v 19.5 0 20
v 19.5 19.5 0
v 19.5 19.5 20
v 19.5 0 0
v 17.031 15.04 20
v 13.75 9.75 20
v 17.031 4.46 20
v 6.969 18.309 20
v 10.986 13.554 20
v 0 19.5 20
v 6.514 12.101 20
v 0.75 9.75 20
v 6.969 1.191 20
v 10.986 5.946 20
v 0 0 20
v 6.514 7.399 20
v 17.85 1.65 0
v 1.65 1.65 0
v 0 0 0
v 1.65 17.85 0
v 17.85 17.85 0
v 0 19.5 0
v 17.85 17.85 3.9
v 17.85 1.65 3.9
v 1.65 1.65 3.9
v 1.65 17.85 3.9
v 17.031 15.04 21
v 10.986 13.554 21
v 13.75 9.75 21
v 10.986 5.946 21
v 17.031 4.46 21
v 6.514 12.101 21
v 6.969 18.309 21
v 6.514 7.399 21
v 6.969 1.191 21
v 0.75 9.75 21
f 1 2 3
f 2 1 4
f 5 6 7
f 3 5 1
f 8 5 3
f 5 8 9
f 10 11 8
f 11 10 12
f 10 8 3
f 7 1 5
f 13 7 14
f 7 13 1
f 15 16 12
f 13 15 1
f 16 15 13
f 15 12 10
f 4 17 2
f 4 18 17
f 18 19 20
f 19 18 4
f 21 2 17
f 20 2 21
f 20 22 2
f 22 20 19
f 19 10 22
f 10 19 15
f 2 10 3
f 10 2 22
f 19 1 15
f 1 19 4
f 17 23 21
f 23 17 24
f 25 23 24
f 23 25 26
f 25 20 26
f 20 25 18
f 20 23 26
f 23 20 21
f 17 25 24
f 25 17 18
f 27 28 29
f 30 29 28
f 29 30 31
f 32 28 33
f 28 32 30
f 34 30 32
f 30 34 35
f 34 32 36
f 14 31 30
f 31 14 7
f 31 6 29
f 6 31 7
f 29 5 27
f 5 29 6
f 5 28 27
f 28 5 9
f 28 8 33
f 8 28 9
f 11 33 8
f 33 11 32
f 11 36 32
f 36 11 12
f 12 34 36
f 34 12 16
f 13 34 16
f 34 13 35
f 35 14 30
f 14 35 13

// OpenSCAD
// file: CommonModules.scad
//    $$$$$$\   $$$$$$\   $$$$$$\  $$\   $$\ $$$$$$\ $$$$$$$\  $$$$$$$$\ 
//    $$  __$$\ $$  __$$\ $$  __$$\ $$ |  $$ |\_$$  _|$$  __$$\ $$  _____|
//    $$ /  $$ |$$ /  \__|$$ /  $$ |$$ |  $$ |  $$ |  $$ |  $$ |$$ |      
//    $$$$$$$$ |$$ |      $$ |  $$ |$$ |  $$ |  $$ |  $$$$$$$  |$$$$$\    
//    $$  __$$ |$$ |      $$ |  $$ |$$ |  $$ |  $$ |  $$  __$$< $$  __|   
//    $$ |  $$ |$$ |  $$\ $$ $$\$$ |$$ |  $$ |  $$ |  $$ |  $$ |$$ |      
//    $$ |  $$ |\$$$$$$  |\$$$$$$ / \$$$$$$  |$$$$$$\ $$ |  $$ |$$$$$$$$\ 
//    \__|  \__| \______/  \___$$$\  \______/ \______|\__|  \__|\________|
//                            \___|                                      
//      
//       Print and play - OpenScad project - by Bekkalizer - GPLv3
// 
// This file is part of the Acquire stl project.
// Copyright (C) 2025 Bekkalizer
//
// Acquire stl project is free software: you can redistribute it and/or modify
// it under the terms of the GNU General Public License as published
// by the Free Software Foundation, either version 3 of the License,
// or (at your option) any later version.
//
// Acquire stl project is distributed in the hope that it will be useful,
// but WITHOUT ANY WARRANTY; without even the implied warranty of
// MERCHANTABILITY or FITNESS FOR A PARTICULAR PURPOSE. See the
// GNU General Public License for more details.
//
// You should have received a copy of the GNU General Public License
// along with this program. If not, see <https://www.gnu.org/licenses/>.

module cube_with_extruded_bottom( cube_size = [19.5, 19.5, 5] ) {
    //Main build script parameters:
    max_width = 19.2;
    top_lip = 2;
    top_height = 3;
    //Calculated hole size:
    inside_margins = 1;
    hole_width = max_width - 2 * (top_lip) + inside_margins;
    hole_height = top_height + inside_margins;
    
    hole_size = [hole_width, hole_width, hole_height]; // Hole dimensions (same height as cube)
    hole_offset = [(cube_size[0] - hole_size[0]) / 2, (cube_size[1] - hole_size[1]) / 2, -0.1]; // Centered on bottom
    difference() {
        // Main Cube
        cube(cube_size);
        
        // Hole Cube (subtracting from bottom)
        translate(hole_offset)
            cube(hole_size);
    }
}
// main file
//    $$$$$$\   $$$$$$\   $$$$$$\  $$\   $$\ $$$$$$\ $$$$$$$\  $$$$$$$$\ 
//    $$  __$$\ $$  __$$\ $$  __$$\ $$ |  $$ |\_$$  _|$$  __$$\ $$  _____|
//    $$ /  $$ |$$ /  \__|$$ /  $$ |$$ |  $$ |  $$ |  $$ |  $$ |$$ |      
//    $$$$$$$$ |$$ |      $$ |  $$ |$$ |  $$ |  $$ |  $$$$$$$  |$$$$$\    
//    $$  __$$ |$$ |      $$ |  $$ |$$ |  $$ |  $$ |  $$  __$$< $$  __|   
//    $$ |  $$ |$$ |  $$\ $$ $$\$$ |$$ |  $$ |  $$ |  $$ |  $$ |$$ |      
//    $$ |  $$ |\$$$$$$  |\$$$$$$ / \$$$$$$  |$$$$$$\ $$ |  $$ |$$$$$$$$\ 
//    \__|  \__| \______/  \___$$$\  \______/ \______|\__|  \__|\________|
//                            \___|                                      
//      
//       Print and play - OpenScad project - by Bekkalizer - GPLv3
// 
// This file is part of the Acquire stl project.
// Copyright (C) 2025 Bekkalizer
//
// Acquire stl project is free software: you can redistribute it and/or modify
// it under the terms of the GNU General Public License as published
// by the Free Software Foundation, either version 3 of the License,
// or (at your option) any later version.
//
// Acquire stl project is distributed in the hope that it will be useful,
// but WITHOUT ANY WARRANTY; without even the implied warranty of
// MERCHANTABILITY or FITNESS FOR A PARTICULAR PURPOSE. See the
// GNU General Public License for more details.
//
// You should have received a copy of the GNU General Public License
// along with this program. If not, see <https://www.gnu.org/licenses/>.

use <CommonModules.scad>

// ============== Parameters ==============
star_height = 1;
star_radius = 9;
star_inner_radius = 4;

bottom_width = 19.5;
bottom_height = 20;

module star(p=5, r1=4, r2=10) {
  s = [for(i=[0:p*2-1]) 
    [
      (i % 2 == 0 ? r1 : r2)*cos(180*i/p),
      (i % 2 == 0 ? r1 : r2)*sin(180*i/p)
    ]
  ];
  polygon(s);
}

union () {
    cube_with_extruded_bottom([bottom_width, bottom_width, bottom_height]);

    translate([bottom_width/2,bottom_width/2,bottom_height])
        linear_extrude(star_height)
            star(p = 5, r1 = star_inner_radius, r2 = star_radius);
}
